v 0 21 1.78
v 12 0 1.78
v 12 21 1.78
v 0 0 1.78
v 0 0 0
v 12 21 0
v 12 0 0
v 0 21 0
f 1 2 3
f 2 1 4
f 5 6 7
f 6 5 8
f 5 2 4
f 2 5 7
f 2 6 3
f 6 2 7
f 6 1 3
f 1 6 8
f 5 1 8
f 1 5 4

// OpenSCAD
/* Warning, this is a very basic generator with a lot of approximation 
input data : [FBGA, 6VW, 12x21x1.78mm, 448, , B, C04-00635B]
generated by com.zoubworld.electronics.cad.model3d.Basic
Date : Sun Feb 15 10:50:49 CET 2026
*/

//body
color("black")
translate([0,0,0])
cube([12.0,21.0,1.78], center=false);
